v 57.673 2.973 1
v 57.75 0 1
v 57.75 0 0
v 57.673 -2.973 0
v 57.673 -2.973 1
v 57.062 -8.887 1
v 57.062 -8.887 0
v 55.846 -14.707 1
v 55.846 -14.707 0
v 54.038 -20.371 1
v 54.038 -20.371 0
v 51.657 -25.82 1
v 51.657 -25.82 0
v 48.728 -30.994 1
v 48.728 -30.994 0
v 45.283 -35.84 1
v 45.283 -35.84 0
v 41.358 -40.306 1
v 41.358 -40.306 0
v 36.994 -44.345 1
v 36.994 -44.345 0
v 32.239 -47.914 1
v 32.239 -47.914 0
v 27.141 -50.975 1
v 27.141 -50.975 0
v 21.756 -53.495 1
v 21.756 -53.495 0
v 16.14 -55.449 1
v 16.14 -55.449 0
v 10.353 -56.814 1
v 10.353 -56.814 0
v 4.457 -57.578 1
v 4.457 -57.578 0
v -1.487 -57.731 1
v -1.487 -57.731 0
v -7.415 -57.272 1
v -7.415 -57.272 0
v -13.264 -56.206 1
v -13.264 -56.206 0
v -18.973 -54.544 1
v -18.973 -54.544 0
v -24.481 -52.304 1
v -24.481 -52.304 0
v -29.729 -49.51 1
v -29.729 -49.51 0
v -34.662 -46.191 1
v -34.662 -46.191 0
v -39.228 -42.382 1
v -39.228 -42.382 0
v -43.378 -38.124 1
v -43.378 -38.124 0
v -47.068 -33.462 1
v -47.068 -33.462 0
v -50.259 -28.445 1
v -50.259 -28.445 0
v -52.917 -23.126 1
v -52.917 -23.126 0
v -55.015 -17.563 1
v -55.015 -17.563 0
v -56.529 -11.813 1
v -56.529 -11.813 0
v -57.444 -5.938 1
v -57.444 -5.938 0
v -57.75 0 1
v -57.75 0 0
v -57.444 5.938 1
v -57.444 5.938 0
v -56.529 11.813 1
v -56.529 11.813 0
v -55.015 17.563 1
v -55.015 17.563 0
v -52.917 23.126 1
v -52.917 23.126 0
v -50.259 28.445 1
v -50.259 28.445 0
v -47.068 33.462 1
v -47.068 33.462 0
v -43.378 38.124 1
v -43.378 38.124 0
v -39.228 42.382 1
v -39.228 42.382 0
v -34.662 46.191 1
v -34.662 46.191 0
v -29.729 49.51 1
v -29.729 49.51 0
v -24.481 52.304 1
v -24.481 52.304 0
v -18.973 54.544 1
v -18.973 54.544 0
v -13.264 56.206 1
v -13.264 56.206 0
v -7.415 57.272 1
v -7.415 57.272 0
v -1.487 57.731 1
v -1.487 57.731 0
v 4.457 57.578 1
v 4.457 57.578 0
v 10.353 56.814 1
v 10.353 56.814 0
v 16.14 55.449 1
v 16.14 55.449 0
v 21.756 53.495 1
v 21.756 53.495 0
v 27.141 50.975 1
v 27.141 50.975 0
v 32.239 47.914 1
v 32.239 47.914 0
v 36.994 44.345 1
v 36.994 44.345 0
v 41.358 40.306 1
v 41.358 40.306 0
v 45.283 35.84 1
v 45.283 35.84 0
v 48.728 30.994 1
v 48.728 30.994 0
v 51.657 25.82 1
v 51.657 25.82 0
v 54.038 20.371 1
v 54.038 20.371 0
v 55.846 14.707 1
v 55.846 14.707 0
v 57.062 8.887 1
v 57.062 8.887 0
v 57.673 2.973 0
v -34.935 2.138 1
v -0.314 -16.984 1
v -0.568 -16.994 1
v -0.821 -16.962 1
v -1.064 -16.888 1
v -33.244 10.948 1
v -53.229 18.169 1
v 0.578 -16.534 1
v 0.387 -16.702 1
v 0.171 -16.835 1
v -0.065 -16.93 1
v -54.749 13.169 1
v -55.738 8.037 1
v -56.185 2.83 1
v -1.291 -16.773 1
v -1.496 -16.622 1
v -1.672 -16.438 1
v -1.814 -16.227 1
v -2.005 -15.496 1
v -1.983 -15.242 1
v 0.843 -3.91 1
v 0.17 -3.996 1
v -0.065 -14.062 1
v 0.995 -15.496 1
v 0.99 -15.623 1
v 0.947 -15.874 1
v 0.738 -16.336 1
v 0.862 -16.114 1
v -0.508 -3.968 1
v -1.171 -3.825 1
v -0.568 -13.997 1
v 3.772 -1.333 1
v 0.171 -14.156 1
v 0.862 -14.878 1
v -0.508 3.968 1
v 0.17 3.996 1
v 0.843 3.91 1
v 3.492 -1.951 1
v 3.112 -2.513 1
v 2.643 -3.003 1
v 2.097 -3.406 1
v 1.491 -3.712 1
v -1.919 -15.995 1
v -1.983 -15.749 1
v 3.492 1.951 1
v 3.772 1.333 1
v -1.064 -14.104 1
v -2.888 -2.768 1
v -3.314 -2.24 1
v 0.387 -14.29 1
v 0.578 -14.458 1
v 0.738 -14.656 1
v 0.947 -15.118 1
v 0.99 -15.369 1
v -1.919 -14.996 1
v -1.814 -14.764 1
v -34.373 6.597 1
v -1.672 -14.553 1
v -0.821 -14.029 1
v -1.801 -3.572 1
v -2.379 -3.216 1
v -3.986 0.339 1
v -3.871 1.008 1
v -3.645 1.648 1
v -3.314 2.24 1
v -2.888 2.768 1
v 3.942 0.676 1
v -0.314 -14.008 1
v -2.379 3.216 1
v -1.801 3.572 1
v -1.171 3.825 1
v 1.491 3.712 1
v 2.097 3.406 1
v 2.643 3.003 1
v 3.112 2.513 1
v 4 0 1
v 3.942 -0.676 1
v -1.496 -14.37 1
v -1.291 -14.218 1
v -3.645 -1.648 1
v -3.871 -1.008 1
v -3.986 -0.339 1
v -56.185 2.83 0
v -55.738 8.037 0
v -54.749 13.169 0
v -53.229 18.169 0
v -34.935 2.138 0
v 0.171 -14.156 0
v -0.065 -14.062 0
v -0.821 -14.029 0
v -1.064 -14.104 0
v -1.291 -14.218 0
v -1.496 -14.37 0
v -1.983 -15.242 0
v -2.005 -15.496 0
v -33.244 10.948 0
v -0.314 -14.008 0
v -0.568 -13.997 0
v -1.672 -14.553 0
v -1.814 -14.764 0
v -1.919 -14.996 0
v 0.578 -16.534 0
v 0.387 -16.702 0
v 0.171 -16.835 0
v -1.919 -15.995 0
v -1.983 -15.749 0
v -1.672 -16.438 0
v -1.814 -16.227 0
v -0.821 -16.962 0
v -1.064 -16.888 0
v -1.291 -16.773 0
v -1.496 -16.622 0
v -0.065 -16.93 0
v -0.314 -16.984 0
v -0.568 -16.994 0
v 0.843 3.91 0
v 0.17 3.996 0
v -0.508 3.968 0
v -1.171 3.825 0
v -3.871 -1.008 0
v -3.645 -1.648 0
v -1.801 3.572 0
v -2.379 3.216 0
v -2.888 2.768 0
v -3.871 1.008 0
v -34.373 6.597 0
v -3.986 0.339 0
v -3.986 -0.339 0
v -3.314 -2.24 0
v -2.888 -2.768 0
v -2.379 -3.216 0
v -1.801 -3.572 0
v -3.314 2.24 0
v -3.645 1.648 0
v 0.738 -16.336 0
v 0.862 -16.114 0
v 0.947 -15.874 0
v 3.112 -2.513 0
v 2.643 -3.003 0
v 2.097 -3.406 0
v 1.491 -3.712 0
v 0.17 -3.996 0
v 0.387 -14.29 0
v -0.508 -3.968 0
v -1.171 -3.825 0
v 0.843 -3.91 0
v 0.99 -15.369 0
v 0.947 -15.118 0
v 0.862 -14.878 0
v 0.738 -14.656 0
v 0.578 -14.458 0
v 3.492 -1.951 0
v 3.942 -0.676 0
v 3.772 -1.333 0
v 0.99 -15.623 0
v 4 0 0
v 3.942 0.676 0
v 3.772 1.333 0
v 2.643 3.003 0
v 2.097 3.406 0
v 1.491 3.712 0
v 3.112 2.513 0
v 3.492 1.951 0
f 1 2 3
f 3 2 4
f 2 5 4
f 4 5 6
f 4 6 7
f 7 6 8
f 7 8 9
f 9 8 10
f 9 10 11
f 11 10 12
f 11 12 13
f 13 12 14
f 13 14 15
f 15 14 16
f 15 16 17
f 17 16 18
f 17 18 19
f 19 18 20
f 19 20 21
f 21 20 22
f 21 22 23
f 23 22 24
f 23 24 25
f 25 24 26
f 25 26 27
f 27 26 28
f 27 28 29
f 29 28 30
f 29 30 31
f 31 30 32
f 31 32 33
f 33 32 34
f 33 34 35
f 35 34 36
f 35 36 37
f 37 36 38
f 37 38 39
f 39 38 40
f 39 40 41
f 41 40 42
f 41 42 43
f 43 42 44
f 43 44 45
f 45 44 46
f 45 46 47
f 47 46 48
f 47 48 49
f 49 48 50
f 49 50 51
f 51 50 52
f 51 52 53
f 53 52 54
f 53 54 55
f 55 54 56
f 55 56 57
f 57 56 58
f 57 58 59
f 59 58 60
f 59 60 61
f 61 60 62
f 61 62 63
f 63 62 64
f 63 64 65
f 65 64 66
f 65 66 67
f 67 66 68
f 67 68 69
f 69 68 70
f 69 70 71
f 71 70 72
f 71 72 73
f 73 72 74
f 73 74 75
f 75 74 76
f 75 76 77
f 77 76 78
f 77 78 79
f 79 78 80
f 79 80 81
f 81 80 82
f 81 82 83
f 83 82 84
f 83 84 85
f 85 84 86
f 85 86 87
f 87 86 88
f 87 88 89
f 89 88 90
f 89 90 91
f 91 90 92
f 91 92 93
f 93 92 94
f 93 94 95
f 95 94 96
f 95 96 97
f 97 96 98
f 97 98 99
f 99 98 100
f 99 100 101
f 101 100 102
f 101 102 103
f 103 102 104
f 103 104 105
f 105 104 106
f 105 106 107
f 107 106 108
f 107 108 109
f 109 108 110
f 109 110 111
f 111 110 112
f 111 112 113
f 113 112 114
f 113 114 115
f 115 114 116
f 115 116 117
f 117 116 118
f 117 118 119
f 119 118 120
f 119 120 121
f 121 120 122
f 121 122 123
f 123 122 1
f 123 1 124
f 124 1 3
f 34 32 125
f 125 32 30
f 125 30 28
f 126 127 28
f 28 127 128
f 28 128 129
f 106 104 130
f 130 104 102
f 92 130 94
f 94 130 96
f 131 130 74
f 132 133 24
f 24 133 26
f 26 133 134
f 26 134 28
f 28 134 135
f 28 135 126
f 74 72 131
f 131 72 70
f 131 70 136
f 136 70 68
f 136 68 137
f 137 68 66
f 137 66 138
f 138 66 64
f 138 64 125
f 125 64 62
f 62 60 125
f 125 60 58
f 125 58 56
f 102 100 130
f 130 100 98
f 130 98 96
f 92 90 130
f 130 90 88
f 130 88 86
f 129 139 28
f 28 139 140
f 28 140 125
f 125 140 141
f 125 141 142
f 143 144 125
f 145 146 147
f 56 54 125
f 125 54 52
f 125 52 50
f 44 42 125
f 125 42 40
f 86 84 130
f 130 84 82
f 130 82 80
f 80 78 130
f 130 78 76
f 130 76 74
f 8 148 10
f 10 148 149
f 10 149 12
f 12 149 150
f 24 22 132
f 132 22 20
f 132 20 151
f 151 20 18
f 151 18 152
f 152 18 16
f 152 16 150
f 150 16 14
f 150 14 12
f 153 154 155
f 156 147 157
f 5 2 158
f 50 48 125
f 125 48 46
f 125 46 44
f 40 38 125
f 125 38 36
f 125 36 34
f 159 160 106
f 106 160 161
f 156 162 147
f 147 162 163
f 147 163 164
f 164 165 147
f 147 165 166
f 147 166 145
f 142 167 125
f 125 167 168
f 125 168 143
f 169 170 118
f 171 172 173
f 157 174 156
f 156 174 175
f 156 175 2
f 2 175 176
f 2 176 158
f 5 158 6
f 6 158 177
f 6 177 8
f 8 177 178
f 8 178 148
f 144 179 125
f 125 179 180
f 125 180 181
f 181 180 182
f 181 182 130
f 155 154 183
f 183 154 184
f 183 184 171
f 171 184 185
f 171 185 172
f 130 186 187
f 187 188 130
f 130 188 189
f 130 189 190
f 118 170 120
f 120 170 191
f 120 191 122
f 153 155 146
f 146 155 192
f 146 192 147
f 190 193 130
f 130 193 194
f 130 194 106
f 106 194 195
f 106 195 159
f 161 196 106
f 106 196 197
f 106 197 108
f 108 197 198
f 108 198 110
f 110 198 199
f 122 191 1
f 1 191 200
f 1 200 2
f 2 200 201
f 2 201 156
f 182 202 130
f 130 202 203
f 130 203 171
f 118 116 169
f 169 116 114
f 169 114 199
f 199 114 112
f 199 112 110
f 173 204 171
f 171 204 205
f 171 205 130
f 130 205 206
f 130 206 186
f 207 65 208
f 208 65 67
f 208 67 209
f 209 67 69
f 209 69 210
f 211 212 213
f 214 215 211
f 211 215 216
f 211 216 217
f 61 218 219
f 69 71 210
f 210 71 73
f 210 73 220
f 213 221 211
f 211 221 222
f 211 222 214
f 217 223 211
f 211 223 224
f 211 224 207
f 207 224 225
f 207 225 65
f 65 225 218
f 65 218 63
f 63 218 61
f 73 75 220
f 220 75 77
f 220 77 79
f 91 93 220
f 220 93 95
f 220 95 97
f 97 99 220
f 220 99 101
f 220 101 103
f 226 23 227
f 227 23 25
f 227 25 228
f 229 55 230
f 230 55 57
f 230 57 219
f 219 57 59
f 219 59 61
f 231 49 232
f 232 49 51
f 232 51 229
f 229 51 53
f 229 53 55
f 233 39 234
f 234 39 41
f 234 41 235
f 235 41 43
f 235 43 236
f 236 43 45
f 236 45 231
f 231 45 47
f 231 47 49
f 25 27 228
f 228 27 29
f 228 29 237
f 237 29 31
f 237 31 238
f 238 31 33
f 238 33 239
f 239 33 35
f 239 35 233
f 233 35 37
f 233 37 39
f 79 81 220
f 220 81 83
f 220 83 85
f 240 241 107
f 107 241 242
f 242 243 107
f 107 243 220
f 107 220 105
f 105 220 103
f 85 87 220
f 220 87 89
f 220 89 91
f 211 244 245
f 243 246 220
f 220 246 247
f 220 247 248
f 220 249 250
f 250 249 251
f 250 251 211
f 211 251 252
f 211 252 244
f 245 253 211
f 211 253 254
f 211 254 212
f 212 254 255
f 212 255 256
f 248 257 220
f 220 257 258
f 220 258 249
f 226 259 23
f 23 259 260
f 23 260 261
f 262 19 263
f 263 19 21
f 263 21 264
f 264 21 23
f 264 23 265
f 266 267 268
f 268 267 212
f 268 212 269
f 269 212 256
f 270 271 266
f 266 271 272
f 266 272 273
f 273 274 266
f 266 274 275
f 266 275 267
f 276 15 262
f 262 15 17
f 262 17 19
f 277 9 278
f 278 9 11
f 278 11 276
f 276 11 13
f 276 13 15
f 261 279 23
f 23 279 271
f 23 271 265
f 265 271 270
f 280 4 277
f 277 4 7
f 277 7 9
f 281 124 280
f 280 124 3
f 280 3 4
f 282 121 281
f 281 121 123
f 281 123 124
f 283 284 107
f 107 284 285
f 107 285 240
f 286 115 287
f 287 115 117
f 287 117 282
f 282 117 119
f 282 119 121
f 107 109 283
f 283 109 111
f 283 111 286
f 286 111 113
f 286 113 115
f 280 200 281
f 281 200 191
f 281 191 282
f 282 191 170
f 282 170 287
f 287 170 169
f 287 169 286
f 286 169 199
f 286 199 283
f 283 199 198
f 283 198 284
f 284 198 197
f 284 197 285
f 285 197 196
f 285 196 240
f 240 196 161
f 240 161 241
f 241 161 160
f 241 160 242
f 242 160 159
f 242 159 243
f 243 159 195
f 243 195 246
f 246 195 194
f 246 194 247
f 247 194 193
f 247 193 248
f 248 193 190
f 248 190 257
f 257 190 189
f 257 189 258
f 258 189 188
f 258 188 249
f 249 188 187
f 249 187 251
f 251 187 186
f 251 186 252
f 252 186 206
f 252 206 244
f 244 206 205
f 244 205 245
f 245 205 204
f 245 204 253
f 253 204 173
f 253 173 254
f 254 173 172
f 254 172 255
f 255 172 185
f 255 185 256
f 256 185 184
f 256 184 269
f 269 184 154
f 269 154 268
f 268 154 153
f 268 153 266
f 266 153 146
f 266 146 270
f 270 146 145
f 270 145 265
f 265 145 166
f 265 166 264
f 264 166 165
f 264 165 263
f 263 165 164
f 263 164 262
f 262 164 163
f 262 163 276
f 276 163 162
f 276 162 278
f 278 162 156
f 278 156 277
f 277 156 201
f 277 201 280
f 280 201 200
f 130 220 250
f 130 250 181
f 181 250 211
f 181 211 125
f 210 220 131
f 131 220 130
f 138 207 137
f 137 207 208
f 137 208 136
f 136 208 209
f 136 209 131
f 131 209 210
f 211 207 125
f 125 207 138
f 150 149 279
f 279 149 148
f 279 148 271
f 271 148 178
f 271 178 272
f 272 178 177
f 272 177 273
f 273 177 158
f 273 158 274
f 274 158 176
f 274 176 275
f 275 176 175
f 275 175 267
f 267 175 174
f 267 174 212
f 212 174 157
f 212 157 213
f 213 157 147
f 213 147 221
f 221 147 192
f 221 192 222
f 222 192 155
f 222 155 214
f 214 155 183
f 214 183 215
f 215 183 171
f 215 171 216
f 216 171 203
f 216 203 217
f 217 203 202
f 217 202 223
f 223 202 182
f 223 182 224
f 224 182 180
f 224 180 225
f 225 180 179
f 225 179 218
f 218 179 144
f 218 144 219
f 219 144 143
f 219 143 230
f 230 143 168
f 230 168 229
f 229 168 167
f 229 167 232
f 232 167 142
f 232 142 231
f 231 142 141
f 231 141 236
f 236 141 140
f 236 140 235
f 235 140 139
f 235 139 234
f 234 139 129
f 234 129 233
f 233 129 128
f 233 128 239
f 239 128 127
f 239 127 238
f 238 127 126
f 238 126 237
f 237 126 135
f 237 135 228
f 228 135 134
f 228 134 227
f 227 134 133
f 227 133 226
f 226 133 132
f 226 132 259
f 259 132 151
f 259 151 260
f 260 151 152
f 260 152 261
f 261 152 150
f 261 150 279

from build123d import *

# Parameters (mm, degrees)
ESQUISSE1_R             = 57.75
BOSS_EXTRU_1_DEPTH      = 1
ESQUISSE2_R             = 4
ENL_V_MAT_EXTRU_1_DEPTH = 10
ENL_V_MAT_EXTRU_4_DEPTH = 10
ESQUISSE5_R             = 1.5
ENL_V_MAT_EXTRU_5_DEPTH = 10


with BuildPart() as part:
    # Esquisse1 → Boss.-Extru.1 (new body)
    with BuildSketch(Plane.XY):
        Circle(ESQUISSE1_R)
    extrude(amount=BOSS_EXTRU_1_DEPTH)

    # Esquisse2 → Enlèv. mat.-Extru.1 (cut)
    with BuildSketch(Plane.XY.offset(1)):
        Circle(ESQUISSE2_R)
    extrude(amount=-ENL_V_MAT_EXTRU_1_DEPTH, mode=Mode.SUBTRACT)

    # Esquisse4 → Enlèv. mat.-Extru.4 (cut)
    with BuildSketch(Plane(origin=(0, 0, 0), x_dir=(-1, 0, 0), z_dir=(0, 0, -1))):
        with BuildLine():
            Line((33.243703386, 10.947884963), (53.229228234, 18.16877802))
            ThreePointArc((53.229228234, 18.16877802), (55.31077904, 10.615789501), (56.184630477, 2.830105651))
            Line((56.184630477, 2.830105651), (34.934630477, 2.138128484))
            ThreePointArc((34.934630477, 2.138128484), (34.372579979, 6.597404459), (33.243703386, 10.947884963))
        make_face()
    extrude(amount=-ENL_V_MAT_EXTRU_4_DEPTH, mode=Mode.SUBTRACT)

    # Esquisse5 → Enlèv. mat.-Extru.5 (cut)
    with BuildSketch(Plane(origin=(0, 0, 0), x_dir=(-1, 0, 0), z_dir=(0, 0, -1))):
        with Locations((0.504599234, -15.495791231)):
            Circle(ESQUISSE5_R)
    extrude(amount=-ENL_V_MAT_EXTRU_5_DEPTH, mode=Mode.SUBTRACT)


solid = part.part
